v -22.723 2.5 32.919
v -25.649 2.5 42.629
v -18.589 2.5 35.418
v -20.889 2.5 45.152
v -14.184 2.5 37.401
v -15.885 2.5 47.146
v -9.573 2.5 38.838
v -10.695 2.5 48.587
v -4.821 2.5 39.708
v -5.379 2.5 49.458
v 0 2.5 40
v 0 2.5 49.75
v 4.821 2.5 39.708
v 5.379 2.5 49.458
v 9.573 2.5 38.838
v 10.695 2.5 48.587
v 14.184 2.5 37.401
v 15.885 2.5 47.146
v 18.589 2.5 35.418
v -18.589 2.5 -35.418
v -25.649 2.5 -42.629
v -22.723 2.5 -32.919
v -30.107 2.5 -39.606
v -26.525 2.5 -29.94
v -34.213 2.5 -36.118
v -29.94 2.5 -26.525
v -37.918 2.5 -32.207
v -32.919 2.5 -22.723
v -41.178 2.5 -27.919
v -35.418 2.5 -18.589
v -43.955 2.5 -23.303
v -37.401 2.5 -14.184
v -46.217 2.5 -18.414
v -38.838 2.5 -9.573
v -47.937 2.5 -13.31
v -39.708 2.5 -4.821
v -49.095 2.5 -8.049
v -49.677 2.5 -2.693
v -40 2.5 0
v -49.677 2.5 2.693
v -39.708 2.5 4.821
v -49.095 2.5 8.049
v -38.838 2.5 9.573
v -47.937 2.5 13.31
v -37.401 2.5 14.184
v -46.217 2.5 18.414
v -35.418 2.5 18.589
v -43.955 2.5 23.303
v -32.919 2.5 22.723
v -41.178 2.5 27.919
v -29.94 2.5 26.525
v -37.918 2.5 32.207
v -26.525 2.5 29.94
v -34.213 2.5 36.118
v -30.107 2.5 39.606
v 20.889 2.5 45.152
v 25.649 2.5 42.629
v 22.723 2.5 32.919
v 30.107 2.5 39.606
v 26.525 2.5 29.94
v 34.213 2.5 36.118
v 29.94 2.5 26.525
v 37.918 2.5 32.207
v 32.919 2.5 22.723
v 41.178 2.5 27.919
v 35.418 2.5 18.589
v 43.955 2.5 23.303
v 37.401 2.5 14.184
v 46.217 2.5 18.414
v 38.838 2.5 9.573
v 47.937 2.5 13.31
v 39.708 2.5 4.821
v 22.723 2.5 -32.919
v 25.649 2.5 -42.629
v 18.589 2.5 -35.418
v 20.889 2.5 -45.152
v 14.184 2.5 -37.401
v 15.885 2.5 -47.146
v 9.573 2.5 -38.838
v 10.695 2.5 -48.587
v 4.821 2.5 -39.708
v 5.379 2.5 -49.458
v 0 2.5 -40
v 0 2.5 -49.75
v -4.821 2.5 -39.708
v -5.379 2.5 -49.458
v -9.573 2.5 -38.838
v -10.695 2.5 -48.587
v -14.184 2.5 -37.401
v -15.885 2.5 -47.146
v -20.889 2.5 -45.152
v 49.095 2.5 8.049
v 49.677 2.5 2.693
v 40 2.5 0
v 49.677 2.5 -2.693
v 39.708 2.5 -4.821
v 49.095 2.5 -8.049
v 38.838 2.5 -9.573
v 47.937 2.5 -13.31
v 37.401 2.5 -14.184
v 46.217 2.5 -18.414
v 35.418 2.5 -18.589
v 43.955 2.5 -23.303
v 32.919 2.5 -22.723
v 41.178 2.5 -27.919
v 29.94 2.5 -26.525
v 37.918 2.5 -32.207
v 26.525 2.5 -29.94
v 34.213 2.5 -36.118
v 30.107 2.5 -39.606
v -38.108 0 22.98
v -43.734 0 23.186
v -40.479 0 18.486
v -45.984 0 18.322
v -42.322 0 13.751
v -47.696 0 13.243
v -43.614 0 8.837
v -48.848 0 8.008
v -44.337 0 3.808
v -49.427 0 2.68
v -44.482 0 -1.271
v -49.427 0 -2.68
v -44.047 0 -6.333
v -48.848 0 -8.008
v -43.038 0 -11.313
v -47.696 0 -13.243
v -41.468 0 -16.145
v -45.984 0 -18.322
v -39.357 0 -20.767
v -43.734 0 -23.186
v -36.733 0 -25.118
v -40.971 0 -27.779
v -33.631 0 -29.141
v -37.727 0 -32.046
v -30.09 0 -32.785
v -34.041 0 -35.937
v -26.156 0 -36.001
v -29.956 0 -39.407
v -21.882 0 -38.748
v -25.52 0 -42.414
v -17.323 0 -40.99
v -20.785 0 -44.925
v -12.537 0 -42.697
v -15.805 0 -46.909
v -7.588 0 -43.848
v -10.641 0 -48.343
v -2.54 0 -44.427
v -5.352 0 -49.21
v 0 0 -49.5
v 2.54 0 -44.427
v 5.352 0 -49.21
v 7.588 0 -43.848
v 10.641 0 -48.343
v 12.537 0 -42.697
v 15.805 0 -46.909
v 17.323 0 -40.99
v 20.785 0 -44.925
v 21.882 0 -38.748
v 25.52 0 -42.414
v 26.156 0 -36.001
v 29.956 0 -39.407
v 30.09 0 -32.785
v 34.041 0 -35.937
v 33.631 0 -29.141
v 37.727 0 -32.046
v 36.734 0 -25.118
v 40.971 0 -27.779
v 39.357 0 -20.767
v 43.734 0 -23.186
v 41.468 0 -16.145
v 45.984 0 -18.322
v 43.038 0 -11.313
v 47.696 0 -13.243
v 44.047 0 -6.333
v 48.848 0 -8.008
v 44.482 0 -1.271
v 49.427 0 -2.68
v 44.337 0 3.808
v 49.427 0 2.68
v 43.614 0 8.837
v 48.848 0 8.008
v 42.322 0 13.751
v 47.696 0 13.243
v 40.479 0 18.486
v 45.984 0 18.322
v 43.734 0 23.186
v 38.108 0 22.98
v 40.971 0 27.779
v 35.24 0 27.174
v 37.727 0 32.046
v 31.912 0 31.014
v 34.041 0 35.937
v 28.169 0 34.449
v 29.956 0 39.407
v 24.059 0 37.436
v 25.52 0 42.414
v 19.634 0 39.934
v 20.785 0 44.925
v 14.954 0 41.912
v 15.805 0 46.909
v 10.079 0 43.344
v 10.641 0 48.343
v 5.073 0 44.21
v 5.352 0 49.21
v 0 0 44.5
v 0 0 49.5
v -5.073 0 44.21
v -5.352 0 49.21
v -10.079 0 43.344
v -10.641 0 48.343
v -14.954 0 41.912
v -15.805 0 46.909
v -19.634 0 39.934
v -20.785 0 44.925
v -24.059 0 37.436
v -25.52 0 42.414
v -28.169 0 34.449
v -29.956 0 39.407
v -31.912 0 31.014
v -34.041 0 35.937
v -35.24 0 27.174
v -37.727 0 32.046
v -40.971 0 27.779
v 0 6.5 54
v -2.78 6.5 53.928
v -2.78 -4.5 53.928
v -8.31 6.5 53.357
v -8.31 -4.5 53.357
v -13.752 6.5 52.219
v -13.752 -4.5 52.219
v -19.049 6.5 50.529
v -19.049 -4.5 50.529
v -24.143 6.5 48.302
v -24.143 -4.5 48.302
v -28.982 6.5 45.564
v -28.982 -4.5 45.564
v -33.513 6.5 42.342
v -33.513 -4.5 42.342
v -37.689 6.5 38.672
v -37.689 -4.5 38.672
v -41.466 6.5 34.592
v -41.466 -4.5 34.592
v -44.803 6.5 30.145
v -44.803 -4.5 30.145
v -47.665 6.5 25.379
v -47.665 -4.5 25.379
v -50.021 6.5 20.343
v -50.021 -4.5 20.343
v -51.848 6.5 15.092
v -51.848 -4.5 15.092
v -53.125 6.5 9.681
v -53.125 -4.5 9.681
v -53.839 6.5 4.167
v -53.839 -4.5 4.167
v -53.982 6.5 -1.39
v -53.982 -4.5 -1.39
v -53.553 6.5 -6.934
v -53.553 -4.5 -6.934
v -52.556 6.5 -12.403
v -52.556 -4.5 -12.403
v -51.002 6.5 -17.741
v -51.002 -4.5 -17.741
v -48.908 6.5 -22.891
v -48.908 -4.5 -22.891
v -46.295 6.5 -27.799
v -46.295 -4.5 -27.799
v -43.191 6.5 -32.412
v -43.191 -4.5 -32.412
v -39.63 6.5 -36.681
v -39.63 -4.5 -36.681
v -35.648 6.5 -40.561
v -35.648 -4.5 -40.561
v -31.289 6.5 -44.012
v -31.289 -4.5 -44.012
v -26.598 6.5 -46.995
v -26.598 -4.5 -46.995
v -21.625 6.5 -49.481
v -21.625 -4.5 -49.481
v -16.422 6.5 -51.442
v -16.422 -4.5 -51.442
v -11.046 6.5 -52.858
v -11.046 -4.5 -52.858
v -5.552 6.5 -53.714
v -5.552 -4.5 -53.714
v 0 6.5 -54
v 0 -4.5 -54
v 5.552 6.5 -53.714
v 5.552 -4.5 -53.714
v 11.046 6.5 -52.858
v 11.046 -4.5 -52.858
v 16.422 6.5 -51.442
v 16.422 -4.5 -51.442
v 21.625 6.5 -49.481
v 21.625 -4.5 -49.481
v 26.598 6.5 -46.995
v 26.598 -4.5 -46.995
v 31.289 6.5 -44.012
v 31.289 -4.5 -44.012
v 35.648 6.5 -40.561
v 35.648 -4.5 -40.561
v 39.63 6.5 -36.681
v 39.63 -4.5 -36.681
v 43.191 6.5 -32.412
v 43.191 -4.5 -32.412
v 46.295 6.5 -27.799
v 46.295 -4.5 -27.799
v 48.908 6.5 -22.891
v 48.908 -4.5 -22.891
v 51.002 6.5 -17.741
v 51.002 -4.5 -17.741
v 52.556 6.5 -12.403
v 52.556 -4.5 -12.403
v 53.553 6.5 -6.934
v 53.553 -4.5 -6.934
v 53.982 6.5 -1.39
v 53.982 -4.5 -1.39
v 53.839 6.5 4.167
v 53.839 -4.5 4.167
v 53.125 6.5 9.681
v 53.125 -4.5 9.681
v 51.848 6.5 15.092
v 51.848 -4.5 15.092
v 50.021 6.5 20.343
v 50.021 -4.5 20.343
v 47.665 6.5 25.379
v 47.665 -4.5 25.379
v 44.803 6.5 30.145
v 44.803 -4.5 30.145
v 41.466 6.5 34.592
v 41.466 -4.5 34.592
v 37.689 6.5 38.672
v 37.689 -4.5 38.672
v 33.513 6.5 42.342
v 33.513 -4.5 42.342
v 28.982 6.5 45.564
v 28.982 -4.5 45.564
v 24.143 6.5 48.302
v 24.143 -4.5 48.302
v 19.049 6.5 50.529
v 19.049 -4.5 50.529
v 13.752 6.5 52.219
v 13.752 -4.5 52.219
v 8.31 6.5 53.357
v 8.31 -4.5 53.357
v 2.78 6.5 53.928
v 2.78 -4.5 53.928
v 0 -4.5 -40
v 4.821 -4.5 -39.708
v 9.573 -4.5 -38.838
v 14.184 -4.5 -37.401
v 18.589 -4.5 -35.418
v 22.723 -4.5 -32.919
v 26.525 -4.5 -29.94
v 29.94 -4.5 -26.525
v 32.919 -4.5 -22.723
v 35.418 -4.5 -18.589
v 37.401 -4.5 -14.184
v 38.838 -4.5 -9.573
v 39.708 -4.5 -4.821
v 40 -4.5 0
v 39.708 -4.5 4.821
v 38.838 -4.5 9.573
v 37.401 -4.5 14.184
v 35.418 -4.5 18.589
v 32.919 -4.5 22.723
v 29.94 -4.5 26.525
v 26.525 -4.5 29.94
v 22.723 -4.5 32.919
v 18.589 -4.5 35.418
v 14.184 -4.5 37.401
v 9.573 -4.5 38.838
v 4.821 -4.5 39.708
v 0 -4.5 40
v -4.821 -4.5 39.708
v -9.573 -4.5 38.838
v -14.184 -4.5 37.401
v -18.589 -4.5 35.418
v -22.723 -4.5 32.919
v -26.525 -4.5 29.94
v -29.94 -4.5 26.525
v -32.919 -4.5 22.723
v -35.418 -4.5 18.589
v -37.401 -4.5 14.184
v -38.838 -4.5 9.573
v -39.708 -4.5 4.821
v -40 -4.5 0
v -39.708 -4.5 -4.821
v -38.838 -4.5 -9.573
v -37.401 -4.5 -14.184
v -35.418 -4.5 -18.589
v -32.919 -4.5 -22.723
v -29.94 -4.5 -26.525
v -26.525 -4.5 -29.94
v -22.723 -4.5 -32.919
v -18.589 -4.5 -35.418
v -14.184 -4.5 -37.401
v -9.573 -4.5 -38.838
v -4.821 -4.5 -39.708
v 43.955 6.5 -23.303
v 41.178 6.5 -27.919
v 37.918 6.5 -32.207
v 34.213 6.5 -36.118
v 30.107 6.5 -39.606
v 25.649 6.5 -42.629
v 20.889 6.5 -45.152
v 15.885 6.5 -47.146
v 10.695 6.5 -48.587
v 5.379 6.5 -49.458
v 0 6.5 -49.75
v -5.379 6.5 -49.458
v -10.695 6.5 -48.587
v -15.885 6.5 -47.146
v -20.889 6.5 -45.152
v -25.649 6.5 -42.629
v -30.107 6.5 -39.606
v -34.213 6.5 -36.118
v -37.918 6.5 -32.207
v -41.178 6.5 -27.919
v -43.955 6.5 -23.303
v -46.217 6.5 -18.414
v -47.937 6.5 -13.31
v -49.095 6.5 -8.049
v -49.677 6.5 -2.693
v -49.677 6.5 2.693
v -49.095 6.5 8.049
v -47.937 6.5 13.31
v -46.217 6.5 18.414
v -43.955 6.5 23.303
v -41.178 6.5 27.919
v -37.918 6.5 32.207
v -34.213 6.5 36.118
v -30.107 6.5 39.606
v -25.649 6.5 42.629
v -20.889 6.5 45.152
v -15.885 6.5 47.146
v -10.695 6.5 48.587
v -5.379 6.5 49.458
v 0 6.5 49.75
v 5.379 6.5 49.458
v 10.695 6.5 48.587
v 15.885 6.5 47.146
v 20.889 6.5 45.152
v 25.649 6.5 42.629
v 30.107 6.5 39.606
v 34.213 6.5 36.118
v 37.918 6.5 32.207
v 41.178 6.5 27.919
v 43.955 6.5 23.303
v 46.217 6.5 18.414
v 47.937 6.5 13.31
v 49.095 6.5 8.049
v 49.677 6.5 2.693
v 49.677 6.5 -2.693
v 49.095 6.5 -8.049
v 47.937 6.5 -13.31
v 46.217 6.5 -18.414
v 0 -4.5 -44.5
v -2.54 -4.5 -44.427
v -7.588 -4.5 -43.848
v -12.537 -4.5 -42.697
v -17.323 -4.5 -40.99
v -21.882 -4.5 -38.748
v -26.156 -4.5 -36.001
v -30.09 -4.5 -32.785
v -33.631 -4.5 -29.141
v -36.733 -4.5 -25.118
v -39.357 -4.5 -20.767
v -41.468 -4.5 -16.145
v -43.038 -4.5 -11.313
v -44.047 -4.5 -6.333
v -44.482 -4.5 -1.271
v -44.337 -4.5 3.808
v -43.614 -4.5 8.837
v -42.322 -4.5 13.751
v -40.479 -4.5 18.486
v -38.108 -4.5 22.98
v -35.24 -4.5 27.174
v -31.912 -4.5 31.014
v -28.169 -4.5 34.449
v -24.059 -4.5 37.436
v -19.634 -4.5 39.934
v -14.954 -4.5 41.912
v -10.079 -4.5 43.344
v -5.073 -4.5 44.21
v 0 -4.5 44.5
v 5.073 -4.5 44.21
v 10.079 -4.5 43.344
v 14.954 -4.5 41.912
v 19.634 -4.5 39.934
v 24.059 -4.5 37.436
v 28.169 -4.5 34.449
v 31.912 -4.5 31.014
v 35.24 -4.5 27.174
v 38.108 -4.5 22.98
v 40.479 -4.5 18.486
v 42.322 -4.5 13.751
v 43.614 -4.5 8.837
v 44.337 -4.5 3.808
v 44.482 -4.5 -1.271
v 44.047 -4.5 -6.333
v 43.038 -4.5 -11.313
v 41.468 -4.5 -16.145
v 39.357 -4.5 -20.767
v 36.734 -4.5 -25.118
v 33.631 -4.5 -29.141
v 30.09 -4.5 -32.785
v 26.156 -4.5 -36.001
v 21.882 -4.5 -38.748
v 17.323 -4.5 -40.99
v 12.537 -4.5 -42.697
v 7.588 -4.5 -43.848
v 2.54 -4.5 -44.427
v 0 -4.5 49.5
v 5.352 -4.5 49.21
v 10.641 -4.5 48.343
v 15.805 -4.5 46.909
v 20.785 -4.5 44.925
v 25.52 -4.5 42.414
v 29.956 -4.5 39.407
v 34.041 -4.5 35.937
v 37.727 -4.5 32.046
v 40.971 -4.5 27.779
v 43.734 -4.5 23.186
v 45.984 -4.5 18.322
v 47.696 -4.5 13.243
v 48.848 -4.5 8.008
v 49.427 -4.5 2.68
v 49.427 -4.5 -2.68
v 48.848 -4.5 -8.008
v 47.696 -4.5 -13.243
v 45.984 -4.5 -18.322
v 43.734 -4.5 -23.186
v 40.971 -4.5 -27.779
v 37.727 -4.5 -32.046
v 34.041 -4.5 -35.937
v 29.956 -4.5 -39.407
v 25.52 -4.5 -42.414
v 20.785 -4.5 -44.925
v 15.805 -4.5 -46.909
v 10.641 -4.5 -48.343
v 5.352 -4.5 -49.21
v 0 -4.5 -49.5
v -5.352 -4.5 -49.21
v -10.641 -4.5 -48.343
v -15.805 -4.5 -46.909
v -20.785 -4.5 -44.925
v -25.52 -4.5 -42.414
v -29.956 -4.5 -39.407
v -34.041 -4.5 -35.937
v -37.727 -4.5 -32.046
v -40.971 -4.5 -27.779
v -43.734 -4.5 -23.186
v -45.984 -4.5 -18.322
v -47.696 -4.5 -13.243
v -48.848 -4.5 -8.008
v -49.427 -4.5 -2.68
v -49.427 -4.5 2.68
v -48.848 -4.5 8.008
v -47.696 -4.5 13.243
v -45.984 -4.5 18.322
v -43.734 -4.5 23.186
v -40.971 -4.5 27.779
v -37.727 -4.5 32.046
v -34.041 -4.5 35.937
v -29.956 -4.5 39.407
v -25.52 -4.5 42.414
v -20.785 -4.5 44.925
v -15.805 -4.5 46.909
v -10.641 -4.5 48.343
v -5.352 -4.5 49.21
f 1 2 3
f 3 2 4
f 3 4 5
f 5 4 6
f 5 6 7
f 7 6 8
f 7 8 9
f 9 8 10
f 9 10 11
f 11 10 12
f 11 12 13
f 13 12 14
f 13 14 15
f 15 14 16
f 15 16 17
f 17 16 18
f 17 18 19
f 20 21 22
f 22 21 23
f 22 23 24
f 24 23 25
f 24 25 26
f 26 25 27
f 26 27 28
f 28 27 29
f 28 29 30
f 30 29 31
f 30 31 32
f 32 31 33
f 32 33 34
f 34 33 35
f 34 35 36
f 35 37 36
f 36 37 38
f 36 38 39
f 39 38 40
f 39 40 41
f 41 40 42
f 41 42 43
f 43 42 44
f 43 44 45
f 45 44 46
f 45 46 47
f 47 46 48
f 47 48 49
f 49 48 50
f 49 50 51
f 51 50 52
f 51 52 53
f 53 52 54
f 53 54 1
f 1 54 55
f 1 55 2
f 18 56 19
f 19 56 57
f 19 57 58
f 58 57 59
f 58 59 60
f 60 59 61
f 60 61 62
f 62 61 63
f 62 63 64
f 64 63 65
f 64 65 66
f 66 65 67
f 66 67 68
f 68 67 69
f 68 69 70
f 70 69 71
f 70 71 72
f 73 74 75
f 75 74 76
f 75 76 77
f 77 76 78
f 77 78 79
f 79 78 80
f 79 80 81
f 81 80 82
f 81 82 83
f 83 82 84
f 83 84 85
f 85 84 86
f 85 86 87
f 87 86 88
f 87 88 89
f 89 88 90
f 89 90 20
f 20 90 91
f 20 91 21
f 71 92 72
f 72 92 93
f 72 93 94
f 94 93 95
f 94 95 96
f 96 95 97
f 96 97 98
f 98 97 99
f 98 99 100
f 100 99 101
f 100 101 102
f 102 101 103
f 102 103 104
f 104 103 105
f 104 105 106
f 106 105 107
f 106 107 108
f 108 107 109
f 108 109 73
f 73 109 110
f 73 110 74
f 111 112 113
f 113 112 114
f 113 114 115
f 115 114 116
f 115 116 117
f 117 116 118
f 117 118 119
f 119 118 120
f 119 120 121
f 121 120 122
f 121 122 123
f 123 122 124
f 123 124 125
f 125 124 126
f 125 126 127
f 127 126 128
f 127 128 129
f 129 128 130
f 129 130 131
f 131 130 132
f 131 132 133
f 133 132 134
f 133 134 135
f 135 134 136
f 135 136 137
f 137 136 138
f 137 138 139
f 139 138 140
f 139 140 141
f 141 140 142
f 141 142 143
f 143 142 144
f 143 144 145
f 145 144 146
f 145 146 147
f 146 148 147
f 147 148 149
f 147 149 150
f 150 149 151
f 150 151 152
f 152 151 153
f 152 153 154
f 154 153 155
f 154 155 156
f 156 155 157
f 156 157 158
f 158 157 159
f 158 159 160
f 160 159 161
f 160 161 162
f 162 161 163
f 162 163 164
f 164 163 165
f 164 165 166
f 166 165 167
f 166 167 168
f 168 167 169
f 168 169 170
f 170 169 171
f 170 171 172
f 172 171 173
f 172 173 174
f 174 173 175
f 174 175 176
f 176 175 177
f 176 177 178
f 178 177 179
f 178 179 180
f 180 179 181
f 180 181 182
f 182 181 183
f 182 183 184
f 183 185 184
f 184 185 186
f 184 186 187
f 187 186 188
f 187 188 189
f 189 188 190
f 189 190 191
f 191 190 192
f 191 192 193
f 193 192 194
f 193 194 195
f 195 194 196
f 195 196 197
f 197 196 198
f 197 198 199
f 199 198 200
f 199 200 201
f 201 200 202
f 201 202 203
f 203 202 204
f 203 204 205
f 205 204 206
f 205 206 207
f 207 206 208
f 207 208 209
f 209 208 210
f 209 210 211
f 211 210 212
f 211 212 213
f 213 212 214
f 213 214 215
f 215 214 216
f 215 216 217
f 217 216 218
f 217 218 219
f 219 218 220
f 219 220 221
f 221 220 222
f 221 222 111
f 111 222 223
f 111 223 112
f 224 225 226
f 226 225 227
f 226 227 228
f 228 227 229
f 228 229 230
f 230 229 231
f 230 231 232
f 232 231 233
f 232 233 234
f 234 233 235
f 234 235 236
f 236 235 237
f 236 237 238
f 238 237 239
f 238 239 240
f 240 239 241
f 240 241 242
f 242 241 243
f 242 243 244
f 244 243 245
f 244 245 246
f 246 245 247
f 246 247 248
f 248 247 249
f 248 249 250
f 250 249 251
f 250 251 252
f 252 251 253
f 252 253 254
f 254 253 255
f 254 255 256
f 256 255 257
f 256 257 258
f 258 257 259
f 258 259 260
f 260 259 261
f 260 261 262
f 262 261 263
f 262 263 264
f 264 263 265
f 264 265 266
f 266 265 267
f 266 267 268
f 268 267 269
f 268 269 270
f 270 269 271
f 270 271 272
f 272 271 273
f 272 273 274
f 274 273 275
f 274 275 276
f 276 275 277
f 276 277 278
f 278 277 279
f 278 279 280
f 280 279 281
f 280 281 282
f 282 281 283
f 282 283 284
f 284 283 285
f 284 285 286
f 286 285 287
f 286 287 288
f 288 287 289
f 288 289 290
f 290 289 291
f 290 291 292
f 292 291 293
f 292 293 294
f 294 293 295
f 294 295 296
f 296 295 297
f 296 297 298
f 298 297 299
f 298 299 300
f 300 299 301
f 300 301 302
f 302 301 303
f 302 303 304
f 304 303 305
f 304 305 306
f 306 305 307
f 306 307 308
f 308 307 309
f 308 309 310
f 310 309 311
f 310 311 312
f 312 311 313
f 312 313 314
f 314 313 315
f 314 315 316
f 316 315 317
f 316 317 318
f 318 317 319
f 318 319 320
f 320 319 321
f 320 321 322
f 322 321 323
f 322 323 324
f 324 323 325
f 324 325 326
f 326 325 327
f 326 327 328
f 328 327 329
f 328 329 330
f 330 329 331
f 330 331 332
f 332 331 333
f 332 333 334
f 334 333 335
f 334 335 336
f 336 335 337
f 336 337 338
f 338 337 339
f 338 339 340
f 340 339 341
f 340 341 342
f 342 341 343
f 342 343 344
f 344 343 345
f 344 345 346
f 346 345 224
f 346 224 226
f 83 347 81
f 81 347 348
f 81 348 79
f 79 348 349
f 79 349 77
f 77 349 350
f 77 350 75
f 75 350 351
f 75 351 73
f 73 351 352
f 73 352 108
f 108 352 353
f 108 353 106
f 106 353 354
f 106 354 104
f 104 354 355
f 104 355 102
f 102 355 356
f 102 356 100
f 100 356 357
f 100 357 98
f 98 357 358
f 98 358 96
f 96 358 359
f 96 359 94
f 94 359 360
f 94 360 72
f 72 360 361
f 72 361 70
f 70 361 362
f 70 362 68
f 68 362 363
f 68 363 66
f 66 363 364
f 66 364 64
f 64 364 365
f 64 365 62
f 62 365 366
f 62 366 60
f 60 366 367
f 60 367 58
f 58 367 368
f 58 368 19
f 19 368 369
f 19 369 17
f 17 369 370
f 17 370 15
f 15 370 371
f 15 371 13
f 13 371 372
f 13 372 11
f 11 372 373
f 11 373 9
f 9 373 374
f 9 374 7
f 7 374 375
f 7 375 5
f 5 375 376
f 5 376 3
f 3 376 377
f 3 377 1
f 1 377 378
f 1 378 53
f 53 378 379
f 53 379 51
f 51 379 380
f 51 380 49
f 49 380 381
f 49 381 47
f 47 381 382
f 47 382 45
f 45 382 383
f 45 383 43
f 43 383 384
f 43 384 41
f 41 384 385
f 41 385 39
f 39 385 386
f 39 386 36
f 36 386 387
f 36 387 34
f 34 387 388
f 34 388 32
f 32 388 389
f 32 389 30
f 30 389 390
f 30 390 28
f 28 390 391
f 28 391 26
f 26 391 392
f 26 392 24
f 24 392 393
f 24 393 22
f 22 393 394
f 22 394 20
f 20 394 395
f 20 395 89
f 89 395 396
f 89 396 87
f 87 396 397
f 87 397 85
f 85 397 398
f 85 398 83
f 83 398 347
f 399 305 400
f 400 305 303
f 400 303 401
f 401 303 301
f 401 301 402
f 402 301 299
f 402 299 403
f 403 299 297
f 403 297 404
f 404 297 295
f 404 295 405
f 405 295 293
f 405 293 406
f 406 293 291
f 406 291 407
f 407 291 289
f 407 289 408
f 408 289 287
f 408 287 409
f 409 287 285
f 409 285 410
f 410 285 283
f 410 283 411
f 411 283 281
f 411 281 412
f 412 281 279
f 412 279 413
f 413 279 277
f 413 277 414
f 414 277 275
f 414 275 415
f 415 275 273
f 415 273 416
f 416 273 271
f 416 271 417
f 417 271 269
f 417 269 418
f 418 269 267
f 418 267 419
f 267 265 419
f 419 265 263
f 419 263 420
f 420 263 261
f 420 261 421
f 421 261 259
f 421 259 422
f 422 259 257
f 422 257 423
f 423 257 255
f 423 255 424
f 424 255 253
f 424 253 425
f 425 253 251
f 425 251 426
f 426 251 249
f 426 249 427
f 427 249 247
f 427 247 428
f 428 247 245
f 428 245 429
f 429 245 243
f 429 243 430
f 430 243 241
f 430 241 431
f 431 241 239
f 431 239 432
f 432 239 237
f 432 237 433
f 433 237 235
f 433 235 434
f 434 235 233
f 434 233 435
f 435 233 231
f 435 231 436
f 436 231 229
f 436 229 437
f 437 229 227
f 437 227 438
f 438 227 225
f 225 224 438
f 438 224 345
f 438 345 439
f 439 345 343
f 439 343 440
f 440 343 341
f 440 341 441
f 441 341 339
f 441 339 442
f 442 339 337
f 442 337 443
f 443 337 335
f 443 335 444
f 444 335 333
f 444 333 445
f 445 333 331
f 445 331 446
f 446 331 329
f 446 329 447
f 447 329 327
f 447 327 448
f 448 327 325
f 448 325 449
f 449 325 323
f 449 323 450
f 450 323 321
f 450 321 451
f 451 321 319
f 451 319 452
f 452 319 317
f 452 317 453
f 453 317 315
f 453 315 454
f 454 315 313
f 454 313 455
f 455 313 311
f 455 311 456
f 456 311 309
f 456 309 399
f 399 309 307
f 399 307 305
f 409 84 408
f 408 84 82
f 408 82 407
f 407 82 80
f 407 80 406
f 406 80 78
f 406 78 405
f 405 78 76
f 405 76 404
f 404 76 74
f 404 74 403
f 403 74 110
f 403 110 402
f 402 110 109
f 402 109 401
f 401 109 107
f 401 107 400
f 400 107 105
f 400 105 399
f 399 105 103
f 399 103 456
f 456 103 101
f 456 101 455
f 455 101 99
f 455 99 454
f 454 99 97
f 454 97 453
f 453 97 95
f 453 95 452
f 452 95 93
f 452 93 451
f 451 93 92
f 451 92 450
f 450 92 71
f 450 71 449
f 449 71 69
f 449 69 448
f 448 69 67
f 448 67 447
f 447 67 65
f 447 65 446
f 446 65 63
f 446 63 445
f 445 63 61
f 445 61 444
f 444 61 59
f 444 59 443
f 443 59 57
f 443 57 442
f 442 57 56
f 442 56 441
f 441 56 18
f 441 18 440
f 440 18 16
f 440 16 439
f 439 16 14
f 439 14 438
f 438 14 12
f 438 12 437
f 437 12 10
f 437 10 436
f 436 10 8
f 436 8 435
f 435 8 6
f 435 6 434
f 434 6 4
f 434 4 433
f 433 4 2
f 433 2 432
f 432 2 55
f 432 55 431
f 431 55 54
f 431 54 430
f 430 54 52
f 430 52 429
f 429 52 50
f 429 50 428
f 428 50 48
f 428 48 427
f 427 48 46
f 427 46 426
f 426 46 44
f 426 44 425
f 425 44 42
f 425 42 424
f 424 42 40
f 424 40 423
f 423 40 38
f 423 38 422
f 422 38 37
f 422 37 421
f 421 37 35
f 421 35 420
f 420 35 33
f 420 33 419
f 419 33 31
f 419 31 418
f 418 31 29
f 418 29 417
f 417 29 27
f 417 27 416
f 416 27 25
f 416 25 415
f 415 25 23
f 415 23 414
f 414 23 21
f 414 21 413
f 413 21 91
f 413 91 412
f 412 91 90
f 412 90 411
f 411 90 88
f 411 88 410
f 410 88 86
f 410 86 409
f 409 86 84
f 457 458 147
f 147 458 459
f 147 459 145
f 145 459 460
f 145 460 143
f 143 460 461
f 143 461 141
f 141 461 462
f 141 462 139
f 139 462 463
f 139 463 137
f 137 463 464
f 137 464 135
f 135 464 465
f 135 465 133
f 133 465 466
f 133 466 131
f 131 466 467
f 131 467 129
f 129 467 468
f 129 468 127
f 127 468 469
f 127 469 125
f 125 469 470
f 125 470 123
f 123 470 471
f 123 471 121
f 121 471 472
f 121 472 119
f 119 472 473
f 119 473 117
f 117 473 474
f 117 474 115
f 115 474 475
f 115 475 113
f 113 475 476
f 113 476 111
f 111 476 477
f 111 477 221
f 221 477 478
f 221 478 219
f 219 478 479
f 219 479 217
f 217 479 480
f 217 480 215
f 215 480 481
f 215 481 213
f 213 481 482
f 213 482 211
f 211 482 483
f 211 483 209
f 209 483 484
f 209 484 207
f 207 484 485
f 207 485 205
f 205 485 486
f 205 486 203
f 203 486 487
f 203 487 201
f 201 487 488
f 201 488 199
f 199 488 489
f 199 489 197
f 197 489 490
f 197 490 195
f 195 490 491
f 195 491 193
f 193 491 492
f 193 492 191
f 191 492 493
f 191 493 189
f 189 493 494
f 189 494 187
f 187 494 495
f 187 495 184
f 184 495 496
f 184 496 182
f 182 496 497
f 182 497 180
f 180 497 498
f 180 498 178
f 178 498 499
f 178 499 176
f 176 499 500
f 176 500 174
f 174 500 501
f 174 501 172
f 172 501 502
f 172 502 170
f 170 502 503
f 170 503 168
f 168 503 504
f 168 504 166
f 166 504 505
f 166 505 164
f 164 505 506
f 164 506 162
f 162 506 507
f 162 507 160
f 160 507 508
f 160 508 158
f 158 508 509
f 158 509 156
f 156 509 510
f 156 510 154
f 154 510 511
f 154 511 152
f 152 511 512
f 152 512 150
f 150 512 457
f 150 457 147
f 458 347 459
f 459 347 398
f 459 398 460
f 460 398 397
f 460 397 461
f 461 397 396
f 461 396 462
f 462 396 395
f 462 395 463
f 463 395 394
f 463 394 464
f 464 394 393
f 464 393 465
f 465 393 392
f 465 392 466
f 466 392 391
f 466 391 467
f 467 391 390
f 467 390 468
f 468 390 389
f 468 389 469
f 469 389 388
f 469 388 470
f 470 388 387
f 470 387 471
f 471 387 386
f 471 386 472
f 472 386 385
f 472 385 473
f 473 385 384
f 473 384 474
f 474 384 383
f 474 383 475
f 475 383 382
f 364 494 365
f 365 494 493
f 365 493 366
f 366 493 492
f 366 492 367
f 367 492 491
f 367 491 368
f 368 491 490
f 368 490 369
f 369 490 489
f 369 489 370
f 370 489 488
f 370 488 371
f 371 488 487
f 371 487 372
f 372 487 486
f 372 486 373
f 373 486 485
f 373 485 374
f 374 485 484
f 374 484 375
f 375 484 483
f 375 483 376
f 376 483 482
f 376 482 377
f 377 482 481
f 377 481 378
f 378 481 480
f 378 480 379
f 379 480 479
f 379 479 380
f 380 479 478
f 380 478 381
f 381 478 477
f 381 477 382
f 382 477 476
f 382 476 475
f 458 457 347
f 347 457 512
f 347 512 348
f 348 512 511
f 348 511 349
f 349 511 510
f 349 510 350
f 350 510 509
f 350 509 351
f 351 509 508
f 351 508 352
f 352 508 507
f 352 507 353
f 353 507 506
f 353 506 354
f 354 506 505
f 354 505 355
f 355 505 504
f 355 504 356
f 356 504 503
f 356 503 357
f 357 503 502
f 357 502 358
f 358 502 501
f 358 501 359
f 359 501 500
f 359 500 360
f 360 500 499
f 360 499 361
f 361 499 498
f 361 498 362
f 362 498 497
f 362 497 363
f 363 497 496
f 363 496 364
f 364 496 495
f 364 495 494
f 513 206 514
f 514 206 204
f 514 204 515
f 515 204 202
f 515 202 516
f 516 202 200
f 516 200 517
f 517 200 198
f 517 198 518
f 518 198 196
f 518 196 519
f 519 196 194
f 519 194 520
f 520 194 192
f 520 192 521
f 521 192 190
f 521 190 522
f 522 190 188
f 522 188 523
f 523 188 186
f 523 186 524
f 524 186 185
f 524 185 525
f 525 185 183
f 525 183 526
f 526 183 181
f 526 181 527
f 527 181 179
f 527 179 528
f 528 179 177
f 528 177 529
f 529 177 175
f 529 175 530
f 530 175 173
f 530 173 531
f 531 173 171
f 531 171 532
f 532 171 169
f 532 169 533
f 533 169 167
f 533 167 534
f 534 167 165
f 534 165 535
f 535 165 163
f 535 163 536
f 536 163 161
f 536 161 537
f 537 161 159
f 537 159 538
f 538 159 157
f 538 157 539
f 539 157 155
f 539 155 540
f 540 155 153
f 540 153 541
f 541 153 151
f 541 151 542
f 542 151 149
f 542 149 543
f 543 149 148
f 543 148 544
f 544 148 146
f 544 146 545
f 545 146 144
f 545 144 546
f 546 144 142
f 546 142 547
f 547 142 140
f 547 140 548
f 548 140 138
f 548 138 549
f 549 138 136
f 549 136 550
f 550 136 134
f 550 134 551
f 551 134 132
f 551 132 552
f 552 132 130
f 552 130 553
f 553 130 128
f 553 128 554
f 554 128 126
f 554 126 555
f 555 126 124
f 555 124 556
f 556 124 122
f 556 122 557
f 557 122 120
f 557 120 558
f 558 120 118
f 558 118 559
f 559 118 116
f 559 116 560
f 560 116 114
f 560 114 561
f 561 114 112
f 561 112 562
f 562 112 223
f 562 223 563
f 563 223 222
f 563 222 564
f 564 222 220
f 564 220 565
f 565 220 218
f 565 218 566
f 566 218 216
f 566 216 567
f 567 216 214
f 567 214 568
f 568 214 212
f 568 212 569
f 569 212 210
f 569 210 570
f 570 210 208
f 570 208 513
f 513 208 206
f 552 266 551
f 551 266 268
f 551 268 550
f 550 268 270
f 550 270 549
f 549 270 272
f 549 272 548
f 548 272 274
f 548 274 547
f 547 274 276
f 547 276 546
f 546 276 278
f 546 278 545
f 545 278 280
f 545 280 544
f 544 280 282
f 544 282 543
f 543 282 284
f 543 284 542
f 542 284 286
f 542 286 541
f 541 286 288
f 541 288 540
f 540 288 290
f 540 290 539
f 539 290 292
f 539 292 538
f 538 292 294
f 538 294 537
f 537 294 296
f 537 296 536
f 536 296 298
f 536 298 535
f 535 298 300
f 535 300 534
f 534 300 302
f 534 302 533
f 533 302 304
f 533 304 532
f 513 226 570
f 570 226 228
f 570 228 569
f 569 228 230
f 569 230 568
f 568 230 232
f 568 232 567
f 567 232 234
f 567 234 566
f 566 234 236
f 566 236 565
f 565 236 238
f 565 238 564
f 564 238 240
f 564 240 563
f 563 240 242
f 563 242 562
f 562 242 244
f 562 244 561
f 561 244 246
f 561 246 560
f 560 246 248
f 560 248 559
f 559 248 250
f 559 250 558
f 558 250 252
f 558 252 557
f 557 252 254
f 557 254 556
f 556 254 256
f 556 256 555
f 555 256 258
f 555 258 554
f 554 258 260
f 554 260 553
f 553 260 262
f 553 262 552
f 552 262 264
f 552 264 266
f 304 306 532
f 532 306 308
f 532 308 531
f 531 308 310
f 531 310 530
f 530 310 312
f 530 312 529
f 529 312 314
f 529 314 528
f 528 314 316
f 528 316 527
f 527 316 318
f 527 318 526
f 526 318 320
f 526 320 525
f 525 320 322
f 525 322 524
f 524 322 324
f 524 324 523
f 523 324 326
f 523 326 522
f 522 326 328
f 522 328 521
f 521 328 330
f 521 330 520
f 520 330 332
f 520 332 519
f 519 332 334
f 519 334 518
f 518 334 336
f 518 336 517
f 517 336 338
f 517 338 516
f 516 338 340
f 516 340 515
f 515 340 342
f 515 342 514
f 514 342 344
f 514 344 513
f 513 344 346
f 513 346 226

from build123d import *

# Parameters (mm, degrees)
SKETCH1_R           = 54
SKETCH1_R_2         = 40
BOSS_EXTRUDE1_DEPTH = 2.5
SKETCH2_R           = 54
SKETCH2_R_2         = 49.75
BOSS_EXTRUDE2_DEPTH = 4
BOSS_EXTRUDE3_START = 4.5
SKETCH3_R           = 54
SKETCH3_R_2         = 49.5
SKETCH3_R_3         = 44.5
SKETCH3_R_4         = 40
BOSS_EXTRUDE3_DEPTH = 4.5


with BuildPart() as part:
    # Sketch1 → Boss-Extrude1 (new body)
    with BuildSketch(Plane(origin=(0, 0, 0), x_dir=(1, 0, 0), z_dir=(0, 1, 0))):
        Circle(SKETCH1_R)
        Circle(SKETCH1_R_2, mode=Mode.SUBTRACT)
    extrude(amount=BOSS_EXTRUDE1_DEPTH)

    # Sketch2 → Boss-Extrude2 (add)
    with BuildSketch(Plane(origin=(0, 2.5, 0), x_dir=(1, 0, 0), z_dir=(0, 1, 0))):
        Circle(SKETCH2_R)
        Circle(SKETCH2_R_2, mode=Mode.SUBTRACT)
    extrude(amount=BOSS_EXTRUDE2_DEPTH)

    # Sketch3 → Boss-Extrude3 (add)
    # profile 1 of 2: a face of its own
    with BuildSketch(Plane.XZ.offset(BOSS_EXTRUDE3_START)):
        Circle(SKETCH3_R)
        Circle(SKETCH3_R_2, mode=Mode.SUBTRACT)
    # profile 2 of 2: a face of its own
    with BuildSketch(Plane.XZ.offset(BOSS_EXTRUDE3_START)):
        Circle(SKETCH3_R_3)
        Circle(SKETCH3_R_4, mode=Mode.SUBTRACT)
    extrude(amount=-BOSS_EXTRUDE3_DEPTH)


solid = part.part
